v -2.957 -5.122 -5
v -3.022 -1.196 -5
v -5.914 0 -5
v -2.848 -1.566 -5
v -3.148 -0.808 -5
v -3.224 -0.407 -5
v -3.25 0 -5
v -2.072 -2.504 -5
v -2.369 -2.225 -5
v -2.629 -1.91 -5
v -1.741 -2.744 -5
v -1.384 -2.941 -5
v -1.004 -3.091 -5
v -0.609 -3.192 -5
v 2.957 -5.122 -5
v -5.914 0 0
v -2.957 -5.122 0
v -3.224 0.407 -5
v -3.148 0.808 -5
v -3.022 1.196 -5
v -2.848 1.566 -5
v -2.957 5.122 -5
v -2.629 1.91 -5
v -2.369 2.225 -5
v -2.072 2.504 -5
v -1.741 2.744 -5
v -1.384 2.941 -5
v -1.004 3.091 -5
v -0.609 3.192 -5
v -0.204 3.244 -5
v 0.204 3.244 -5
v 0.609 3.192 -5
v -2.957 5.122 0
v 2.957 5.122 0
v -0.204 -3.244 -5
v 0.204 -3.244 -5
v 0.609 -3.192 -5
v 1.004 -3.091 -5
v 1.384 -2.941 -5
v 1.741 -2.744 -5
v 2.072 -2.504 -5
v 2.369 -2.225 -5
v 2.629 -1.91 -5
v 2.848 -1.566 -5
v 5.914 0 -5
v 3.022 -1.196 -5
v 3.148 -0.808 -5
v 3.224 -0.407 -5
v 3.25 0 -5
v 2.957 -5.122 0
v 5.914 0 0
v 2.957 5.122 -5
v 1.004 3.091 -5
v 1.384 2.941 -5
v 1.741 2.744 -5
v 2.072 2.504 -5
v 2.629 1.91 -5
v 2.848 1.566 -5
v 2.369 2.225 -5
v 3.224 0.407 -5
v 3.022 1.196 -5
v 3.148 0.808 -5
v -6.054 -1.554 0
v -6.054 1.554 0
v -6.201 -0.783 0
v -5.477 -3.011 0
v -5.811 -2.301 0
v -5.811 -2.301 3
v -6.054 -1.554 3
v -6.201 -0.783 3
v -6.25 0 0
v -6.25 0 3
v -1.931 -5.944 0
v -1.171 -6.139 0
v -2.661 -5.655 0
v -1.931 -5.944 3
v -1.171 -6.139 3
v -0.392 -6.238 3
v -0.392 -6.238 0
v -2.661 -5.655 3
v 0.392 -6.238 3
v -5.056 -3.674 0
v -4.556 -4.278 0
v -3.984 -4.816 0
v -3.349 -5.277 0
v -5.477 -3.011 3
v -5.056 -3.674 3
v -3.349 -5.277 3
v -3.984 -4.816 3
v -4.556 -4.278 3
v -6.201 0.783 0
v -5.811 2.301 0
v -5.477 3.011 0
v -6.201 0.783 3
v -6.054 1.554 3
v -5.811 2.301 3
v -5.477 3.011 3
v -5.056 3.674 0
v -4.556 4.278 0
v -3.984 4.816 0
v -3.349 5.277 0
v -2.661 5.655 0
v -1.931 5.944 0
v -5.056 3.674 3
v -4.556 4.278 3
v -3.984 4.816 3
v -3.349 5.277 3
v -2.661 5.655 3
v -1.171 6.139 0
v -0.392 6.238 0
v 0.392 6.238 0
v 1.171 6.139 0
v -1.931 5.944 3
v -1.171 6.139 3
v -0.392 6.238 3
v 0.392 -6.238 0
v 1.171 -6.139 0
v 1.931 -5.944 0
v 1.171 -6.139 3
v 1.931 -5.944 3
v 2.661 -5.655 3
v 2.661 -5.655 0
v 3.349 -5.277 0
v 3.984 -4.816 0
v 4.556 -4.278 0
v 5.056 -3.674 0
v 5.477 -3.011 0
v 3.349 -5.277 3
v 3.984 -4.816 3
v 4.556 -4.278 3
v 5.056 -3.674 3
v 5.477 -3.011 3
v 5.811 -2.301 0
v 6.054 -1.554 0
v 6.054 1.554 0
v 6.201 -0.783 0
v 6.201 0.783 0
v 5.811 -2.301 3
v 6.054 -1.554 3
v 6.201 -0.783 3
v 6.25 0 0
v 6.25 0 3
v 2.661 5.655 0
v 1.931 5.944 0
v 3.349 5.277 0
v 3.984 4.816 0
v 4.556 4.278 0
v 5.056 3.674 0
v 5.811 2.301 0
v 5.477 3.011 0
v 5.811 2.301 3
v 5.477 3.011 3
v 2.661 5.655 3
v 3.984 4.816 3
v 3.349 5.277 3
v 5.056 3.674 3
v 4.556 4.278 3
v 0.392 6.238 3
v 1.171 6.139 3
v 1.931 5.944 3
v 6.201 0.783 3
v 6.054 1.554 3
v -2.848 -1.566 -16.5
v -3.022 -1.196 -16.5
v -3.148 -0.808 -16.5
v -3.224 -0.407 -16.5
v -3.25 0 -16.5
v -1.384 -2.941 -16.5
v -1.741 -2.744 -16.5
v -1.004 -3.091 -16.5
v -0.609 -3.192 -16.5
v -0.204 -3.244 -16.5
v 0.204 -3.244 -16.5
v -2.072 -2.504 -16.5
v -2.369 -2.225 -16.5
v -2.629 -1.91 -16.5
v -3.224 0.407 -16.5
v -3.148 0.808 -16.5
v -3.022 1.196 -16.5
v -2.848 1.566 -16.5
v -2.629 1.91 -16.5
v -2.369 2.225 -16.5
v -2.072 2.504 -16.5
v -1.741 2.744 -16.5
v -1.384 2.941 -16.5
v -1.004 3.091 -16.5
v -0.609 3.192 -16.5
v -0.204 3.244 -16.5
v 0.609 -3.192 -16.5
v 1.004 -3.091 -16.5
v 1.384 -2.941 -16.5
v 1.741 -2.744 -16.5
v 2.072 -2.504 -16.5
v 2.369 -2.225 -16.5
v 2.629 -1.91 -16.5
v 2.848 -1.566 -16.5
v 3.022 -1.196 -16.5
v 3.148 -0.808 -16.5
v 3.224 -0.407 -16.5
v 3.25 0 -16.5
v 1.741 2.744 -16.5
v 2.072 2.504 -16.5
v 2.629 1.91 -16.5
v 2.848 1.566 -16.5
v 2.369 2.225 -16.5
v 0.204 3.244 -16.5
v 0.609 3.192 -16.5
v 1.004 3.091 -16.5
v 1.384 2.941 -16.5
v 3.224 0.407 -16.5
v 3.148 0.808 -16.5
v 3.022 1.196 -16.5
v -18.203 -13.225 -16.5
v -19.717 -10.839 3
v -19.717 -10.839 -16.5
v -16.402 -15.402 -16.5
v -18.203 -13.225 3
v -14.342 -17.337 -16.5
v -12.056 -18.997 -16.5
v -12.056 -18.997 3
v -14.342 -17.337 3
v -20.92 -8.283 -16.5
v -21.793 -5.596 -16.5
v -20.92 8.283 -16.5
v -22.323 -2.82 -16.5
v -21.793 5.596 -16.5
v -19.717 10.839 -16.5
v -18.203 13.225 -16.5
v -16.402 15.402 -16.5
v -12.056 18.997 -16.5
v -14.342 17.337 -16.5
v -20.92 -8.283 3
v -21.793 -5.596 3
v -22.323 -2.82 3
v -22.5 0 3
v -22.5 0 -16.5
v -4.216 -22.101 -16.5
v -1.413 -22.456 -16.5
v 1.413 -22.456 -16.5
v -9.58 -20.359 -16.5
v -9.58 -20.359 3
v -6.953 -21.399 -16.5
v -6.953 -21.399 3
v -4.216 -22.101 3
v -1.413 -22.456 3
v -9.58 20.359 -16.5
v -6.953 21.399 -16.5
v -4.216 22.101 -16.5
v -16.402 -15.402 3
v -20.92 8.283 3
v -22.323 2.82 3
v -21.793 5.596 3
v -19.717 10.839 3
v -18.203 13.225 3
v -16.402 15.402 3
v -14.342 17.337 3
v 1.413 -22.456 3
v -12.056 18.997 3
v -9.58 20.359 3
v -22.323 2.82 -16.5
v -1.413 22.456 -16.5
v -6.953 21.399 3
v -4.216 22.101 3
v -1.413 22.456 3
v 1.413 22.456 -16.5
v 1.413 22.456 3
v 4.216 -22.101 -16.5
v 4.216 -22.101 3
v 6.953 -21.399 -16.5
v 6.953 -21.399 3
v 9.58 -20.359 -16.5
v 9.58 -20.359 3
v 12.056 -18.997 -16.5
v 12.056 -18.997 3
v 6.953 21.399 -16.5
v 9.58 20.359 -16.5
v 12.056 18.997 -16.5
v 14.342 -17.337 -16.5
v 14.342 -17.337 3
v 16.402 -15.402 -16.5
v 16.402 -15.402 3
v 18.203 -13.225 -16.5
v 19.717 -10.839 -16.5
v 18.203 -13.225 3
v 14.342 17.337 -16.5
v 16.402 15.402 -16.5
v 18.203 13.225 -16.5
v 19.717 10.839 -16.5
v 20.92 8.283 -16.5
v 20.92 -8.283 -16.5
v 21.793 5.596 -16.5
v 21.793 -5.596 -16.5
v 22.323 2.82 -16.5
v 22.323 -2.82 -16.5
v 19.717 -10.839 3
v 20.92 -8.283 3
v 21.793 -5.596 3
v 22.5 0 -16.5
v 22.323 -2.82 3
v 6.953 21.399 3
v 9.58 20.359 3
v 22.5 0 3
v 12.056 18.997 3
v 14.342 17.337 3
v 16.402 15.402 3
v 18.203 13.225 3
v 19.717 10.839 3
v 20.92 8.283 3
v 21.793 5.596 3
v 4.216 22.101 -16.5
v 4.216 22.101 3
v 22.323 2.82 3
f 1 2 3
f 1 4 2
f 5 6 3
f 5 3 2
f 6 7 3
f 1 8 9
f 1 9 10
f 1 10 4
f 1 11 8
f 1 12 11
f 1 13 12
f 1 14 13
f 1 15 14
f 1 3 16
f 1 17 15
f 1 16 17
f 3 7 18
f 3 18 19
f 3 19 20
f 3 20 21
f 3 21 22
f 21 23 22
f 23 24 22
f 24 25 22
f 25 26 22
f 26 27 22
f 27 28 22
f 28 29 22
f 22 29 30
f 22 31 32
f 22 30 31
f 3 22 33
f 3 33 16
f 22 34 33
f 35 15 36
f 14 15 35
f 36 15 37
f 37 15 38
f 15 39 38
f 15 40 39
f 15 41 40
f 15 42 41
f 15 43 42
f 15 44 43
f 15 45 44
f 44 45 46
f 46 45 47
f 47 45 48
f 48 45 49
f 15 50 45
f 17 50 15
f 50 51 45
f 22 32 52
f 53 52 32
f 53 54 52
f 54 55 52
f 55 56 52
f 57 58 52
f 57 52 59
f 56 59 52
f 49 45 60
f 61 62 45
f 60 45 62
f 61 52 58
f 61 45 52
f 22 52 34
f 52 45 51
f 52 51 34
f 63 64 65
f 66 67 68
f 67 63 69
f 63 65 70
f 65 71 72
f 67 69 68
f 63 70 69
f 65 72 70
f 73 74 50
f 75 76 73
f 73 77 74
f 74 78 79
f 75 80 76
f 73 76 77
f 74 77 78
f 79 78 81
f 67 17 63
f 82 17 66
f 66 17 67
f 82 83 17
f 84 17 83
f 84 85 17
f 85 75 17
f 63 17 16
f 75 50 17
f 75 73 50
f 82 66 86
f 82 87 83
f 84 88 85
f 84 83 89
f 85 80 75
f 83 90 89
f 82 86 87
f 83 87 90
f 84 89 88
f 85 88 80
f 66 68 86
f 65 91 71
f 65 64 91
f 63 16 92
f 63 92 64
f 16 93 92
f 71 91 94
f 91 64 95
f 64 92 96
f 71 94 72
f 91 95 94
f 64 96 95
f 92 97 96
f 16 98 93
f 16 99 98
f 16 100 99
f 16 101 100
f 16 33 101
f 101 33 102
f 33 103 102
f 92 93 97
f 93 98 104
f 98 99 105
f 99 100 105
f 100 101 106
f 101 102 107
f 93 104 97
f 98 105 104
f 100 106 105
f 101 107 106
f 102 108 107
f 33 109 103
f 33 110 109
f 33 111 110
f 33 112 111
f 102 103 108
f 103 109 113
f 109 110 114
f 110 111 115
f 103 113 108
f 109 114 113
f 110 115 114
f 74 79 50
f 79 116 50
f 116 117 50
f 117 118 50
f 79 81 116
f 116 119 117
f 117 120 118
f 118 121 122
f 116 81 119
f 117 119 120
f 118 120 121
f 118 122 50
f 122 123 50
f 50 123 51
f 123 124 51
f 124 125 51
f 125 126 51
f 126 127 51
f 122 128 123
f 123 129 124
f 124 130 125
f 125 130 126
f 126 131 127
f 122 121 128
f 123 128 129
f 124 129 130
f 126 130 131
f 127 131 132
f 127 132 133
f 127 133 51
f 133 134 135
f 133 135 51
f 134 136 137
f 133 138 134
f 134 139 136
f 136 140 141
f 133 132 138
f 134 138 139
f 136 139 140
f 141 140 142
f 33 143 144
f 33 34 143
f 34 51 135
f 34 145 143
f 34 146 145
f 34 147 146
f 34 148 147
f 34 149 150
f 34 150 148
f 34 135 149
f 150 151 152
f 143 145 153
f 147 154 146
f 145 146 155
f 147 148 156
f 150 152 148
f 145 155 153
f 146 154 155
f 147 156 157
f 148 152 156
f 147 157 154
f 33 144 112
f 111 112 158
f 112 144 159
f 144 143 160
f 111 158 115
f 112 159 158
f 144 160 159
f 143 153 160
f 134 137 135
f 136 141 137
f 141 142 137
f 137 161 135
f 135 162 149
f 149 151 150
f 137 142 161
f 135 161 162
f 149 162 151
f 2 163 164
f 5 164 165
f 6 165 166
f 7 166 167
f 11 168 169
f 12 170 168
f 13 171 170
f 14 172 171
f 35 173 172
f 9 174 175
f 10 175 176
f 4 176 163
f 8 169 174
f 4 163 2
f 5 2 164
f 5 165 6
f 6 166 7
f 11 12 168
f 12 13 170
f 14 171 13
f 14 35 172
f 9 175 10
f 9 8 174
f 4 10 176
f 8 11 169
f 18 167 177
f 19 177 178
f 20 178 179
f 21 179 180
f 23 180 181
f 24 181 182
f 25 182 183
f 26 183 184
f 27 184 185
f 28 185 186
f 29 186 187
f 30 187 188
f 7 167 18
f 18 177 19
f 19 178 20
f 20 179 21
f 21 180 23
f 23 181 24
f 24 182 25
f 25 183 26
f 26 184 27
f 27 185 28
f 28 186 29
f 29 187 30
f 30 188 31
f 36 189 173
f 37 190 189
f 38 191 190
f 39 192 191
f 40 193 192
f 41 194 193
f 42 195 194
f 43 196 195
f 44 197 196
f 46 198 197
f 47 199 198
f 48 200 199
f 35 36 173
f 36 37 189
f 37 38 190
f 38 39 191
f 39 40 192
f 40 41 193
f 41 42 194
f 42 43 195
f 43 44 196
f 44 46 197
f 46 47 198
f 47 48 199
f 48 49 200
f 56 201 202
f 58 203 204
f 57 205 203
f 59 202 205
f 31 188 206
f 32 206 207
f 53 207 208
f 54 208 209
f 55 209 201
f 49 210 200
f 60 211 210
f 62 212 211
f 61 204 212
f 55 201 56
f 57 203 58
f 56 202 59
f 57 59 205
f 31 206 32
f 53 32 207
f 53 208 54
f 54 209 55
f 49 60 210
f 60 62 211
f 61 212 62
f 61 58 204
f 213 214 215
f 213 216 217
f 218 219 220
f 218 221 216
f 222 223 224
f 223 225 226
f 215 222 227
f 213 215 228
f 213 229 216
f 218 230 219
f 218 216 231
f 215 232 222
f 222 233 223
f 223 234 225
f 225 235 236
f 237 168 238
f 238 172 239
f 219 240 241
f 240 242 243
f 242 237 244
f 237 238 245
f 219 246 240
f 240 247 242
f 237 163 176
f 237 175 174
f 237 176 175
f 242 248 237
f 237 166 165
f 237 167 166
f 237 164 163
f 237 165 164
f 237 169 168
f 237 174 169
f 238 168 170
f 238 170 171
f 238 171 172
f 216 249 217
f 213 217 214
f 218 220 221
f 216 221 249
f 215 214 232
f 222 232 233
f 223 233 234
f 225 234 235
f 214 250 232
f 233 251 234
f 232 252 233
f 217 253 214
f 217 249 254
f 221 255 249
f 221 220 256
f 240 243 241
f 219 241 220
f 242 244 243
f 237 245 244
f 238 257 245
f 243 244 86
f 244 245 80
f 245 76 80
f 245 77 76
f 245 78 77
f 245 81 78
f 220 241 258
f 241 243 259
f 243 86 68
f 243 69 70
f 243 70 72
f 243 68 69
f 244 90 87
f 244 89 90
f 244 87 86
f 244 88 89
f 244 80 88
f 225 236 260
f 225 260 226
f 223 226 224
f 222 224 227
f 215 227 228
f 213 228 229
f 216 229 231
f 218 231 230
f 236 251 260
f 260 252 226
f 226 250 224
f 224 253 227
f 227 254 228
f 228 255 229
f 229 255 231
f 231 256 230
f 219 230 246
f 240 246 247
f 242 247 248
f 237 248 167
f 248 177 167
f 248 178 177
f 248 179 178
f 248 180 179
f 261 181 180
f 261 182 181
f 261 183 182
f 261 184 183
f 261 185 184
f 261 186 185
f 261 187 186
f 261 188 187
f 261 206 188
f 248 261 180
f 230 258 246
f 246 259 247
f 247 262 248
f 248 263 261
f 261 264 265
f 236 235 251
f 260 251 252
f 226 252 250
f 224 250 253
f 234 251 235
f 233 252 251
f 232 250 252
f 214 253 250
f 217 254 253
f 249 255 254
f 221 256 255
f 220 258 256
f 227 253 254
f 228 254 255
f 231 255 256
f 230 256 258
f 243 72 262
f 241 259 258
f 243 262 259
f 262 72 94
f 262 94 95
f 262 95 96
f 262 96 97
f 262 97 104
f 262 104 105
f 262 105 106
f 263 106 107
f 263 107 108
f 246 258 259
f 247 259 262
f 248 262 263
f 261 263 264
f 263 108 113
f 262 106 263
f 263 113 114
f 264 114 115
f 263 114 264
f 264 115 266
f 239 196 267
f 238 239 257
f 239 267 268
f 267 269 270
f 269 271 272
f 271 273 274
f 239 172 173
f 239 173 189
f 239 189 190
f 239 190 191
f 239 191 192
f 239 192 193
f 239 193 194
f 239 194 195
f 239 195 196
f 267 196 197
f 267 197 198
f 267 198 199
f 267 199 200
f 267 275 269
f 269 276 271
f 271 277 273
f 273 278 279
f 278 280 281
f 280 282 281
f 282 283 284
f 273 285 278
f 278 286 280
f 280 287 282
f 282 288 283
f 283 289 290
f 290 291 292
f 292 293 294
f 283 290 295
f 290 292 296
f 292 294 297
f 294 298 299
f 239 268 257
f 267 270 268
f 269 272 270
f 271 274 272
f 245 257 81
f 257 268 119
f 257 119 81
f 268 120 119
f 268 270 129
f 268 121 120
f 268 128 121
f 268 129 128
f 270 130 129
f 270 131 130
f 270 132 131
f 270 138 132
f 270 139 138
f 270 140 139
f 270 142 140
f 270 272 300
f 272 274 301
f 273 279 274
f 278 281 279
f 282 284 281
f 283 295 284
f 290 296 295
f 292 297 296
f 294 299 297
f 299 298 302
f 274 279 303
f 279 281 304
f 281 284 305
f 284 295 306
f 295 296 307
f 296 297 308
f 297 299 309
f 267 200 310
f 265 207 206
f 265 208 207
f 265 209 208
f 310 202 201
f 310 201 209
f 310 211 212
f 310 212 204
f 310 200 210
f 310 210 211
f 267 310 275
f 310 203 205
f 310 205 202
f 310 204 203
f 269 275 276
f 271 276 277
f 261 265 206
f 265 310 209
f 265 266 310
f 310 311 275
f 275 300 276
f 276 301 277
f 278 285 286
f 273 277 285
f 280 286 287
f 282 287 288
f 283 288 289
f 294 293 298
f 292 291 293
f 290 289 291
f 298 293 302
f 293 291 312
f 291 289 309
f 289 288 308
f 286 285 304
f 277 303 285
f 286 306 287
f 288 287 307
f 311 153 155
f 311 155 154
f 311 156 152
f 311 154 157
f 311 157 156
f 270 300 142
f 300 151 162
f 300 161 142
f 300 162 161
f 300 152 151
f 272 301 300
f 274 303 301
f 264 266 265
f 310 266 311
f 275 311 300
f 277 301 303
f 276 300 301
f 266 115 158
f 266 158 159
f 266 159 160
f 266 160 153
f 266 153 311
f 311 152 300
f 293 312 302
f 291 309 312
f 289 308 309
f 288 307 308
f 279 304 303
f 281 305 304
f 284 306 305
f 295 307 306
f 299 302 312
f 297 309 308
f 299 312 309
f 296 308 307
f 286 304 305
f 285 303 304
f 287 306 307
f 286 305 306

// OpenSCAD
$fn = 50;

difference() {
	union() {
		translate(v = [0, 0, -16.5]) {
			cylinder(h = 19.5, r = 22.5);
		}
	}
	union() {
		translate(v = [0, 0, 0]) {
			rotate(a = [0, 0, 0]) {
				difference() {
					union() {
						translate(v = [0, 0, -5]) {
							linear_extrude(height = 5) {
								polygon(points = [[5.914249999999999, 0.0], [2.957125, 5.1218907443321156], [-2.9571249999999982, 5.1218907443321156], [-5.914249999999999, 7.242867331857232e-16], [-2.9571250000000022, -5.121890744332115], [2.9571249999999956, -5.121890744332118]]);
							}
						}
					}
					union();
				}
			}
		}
		#cylinder(h = 3, r = 6.25);
		#translate(v = [0, 0, -100.0]) {
			cylinder(h = 200, r = 3.25);
		}
	}
}
